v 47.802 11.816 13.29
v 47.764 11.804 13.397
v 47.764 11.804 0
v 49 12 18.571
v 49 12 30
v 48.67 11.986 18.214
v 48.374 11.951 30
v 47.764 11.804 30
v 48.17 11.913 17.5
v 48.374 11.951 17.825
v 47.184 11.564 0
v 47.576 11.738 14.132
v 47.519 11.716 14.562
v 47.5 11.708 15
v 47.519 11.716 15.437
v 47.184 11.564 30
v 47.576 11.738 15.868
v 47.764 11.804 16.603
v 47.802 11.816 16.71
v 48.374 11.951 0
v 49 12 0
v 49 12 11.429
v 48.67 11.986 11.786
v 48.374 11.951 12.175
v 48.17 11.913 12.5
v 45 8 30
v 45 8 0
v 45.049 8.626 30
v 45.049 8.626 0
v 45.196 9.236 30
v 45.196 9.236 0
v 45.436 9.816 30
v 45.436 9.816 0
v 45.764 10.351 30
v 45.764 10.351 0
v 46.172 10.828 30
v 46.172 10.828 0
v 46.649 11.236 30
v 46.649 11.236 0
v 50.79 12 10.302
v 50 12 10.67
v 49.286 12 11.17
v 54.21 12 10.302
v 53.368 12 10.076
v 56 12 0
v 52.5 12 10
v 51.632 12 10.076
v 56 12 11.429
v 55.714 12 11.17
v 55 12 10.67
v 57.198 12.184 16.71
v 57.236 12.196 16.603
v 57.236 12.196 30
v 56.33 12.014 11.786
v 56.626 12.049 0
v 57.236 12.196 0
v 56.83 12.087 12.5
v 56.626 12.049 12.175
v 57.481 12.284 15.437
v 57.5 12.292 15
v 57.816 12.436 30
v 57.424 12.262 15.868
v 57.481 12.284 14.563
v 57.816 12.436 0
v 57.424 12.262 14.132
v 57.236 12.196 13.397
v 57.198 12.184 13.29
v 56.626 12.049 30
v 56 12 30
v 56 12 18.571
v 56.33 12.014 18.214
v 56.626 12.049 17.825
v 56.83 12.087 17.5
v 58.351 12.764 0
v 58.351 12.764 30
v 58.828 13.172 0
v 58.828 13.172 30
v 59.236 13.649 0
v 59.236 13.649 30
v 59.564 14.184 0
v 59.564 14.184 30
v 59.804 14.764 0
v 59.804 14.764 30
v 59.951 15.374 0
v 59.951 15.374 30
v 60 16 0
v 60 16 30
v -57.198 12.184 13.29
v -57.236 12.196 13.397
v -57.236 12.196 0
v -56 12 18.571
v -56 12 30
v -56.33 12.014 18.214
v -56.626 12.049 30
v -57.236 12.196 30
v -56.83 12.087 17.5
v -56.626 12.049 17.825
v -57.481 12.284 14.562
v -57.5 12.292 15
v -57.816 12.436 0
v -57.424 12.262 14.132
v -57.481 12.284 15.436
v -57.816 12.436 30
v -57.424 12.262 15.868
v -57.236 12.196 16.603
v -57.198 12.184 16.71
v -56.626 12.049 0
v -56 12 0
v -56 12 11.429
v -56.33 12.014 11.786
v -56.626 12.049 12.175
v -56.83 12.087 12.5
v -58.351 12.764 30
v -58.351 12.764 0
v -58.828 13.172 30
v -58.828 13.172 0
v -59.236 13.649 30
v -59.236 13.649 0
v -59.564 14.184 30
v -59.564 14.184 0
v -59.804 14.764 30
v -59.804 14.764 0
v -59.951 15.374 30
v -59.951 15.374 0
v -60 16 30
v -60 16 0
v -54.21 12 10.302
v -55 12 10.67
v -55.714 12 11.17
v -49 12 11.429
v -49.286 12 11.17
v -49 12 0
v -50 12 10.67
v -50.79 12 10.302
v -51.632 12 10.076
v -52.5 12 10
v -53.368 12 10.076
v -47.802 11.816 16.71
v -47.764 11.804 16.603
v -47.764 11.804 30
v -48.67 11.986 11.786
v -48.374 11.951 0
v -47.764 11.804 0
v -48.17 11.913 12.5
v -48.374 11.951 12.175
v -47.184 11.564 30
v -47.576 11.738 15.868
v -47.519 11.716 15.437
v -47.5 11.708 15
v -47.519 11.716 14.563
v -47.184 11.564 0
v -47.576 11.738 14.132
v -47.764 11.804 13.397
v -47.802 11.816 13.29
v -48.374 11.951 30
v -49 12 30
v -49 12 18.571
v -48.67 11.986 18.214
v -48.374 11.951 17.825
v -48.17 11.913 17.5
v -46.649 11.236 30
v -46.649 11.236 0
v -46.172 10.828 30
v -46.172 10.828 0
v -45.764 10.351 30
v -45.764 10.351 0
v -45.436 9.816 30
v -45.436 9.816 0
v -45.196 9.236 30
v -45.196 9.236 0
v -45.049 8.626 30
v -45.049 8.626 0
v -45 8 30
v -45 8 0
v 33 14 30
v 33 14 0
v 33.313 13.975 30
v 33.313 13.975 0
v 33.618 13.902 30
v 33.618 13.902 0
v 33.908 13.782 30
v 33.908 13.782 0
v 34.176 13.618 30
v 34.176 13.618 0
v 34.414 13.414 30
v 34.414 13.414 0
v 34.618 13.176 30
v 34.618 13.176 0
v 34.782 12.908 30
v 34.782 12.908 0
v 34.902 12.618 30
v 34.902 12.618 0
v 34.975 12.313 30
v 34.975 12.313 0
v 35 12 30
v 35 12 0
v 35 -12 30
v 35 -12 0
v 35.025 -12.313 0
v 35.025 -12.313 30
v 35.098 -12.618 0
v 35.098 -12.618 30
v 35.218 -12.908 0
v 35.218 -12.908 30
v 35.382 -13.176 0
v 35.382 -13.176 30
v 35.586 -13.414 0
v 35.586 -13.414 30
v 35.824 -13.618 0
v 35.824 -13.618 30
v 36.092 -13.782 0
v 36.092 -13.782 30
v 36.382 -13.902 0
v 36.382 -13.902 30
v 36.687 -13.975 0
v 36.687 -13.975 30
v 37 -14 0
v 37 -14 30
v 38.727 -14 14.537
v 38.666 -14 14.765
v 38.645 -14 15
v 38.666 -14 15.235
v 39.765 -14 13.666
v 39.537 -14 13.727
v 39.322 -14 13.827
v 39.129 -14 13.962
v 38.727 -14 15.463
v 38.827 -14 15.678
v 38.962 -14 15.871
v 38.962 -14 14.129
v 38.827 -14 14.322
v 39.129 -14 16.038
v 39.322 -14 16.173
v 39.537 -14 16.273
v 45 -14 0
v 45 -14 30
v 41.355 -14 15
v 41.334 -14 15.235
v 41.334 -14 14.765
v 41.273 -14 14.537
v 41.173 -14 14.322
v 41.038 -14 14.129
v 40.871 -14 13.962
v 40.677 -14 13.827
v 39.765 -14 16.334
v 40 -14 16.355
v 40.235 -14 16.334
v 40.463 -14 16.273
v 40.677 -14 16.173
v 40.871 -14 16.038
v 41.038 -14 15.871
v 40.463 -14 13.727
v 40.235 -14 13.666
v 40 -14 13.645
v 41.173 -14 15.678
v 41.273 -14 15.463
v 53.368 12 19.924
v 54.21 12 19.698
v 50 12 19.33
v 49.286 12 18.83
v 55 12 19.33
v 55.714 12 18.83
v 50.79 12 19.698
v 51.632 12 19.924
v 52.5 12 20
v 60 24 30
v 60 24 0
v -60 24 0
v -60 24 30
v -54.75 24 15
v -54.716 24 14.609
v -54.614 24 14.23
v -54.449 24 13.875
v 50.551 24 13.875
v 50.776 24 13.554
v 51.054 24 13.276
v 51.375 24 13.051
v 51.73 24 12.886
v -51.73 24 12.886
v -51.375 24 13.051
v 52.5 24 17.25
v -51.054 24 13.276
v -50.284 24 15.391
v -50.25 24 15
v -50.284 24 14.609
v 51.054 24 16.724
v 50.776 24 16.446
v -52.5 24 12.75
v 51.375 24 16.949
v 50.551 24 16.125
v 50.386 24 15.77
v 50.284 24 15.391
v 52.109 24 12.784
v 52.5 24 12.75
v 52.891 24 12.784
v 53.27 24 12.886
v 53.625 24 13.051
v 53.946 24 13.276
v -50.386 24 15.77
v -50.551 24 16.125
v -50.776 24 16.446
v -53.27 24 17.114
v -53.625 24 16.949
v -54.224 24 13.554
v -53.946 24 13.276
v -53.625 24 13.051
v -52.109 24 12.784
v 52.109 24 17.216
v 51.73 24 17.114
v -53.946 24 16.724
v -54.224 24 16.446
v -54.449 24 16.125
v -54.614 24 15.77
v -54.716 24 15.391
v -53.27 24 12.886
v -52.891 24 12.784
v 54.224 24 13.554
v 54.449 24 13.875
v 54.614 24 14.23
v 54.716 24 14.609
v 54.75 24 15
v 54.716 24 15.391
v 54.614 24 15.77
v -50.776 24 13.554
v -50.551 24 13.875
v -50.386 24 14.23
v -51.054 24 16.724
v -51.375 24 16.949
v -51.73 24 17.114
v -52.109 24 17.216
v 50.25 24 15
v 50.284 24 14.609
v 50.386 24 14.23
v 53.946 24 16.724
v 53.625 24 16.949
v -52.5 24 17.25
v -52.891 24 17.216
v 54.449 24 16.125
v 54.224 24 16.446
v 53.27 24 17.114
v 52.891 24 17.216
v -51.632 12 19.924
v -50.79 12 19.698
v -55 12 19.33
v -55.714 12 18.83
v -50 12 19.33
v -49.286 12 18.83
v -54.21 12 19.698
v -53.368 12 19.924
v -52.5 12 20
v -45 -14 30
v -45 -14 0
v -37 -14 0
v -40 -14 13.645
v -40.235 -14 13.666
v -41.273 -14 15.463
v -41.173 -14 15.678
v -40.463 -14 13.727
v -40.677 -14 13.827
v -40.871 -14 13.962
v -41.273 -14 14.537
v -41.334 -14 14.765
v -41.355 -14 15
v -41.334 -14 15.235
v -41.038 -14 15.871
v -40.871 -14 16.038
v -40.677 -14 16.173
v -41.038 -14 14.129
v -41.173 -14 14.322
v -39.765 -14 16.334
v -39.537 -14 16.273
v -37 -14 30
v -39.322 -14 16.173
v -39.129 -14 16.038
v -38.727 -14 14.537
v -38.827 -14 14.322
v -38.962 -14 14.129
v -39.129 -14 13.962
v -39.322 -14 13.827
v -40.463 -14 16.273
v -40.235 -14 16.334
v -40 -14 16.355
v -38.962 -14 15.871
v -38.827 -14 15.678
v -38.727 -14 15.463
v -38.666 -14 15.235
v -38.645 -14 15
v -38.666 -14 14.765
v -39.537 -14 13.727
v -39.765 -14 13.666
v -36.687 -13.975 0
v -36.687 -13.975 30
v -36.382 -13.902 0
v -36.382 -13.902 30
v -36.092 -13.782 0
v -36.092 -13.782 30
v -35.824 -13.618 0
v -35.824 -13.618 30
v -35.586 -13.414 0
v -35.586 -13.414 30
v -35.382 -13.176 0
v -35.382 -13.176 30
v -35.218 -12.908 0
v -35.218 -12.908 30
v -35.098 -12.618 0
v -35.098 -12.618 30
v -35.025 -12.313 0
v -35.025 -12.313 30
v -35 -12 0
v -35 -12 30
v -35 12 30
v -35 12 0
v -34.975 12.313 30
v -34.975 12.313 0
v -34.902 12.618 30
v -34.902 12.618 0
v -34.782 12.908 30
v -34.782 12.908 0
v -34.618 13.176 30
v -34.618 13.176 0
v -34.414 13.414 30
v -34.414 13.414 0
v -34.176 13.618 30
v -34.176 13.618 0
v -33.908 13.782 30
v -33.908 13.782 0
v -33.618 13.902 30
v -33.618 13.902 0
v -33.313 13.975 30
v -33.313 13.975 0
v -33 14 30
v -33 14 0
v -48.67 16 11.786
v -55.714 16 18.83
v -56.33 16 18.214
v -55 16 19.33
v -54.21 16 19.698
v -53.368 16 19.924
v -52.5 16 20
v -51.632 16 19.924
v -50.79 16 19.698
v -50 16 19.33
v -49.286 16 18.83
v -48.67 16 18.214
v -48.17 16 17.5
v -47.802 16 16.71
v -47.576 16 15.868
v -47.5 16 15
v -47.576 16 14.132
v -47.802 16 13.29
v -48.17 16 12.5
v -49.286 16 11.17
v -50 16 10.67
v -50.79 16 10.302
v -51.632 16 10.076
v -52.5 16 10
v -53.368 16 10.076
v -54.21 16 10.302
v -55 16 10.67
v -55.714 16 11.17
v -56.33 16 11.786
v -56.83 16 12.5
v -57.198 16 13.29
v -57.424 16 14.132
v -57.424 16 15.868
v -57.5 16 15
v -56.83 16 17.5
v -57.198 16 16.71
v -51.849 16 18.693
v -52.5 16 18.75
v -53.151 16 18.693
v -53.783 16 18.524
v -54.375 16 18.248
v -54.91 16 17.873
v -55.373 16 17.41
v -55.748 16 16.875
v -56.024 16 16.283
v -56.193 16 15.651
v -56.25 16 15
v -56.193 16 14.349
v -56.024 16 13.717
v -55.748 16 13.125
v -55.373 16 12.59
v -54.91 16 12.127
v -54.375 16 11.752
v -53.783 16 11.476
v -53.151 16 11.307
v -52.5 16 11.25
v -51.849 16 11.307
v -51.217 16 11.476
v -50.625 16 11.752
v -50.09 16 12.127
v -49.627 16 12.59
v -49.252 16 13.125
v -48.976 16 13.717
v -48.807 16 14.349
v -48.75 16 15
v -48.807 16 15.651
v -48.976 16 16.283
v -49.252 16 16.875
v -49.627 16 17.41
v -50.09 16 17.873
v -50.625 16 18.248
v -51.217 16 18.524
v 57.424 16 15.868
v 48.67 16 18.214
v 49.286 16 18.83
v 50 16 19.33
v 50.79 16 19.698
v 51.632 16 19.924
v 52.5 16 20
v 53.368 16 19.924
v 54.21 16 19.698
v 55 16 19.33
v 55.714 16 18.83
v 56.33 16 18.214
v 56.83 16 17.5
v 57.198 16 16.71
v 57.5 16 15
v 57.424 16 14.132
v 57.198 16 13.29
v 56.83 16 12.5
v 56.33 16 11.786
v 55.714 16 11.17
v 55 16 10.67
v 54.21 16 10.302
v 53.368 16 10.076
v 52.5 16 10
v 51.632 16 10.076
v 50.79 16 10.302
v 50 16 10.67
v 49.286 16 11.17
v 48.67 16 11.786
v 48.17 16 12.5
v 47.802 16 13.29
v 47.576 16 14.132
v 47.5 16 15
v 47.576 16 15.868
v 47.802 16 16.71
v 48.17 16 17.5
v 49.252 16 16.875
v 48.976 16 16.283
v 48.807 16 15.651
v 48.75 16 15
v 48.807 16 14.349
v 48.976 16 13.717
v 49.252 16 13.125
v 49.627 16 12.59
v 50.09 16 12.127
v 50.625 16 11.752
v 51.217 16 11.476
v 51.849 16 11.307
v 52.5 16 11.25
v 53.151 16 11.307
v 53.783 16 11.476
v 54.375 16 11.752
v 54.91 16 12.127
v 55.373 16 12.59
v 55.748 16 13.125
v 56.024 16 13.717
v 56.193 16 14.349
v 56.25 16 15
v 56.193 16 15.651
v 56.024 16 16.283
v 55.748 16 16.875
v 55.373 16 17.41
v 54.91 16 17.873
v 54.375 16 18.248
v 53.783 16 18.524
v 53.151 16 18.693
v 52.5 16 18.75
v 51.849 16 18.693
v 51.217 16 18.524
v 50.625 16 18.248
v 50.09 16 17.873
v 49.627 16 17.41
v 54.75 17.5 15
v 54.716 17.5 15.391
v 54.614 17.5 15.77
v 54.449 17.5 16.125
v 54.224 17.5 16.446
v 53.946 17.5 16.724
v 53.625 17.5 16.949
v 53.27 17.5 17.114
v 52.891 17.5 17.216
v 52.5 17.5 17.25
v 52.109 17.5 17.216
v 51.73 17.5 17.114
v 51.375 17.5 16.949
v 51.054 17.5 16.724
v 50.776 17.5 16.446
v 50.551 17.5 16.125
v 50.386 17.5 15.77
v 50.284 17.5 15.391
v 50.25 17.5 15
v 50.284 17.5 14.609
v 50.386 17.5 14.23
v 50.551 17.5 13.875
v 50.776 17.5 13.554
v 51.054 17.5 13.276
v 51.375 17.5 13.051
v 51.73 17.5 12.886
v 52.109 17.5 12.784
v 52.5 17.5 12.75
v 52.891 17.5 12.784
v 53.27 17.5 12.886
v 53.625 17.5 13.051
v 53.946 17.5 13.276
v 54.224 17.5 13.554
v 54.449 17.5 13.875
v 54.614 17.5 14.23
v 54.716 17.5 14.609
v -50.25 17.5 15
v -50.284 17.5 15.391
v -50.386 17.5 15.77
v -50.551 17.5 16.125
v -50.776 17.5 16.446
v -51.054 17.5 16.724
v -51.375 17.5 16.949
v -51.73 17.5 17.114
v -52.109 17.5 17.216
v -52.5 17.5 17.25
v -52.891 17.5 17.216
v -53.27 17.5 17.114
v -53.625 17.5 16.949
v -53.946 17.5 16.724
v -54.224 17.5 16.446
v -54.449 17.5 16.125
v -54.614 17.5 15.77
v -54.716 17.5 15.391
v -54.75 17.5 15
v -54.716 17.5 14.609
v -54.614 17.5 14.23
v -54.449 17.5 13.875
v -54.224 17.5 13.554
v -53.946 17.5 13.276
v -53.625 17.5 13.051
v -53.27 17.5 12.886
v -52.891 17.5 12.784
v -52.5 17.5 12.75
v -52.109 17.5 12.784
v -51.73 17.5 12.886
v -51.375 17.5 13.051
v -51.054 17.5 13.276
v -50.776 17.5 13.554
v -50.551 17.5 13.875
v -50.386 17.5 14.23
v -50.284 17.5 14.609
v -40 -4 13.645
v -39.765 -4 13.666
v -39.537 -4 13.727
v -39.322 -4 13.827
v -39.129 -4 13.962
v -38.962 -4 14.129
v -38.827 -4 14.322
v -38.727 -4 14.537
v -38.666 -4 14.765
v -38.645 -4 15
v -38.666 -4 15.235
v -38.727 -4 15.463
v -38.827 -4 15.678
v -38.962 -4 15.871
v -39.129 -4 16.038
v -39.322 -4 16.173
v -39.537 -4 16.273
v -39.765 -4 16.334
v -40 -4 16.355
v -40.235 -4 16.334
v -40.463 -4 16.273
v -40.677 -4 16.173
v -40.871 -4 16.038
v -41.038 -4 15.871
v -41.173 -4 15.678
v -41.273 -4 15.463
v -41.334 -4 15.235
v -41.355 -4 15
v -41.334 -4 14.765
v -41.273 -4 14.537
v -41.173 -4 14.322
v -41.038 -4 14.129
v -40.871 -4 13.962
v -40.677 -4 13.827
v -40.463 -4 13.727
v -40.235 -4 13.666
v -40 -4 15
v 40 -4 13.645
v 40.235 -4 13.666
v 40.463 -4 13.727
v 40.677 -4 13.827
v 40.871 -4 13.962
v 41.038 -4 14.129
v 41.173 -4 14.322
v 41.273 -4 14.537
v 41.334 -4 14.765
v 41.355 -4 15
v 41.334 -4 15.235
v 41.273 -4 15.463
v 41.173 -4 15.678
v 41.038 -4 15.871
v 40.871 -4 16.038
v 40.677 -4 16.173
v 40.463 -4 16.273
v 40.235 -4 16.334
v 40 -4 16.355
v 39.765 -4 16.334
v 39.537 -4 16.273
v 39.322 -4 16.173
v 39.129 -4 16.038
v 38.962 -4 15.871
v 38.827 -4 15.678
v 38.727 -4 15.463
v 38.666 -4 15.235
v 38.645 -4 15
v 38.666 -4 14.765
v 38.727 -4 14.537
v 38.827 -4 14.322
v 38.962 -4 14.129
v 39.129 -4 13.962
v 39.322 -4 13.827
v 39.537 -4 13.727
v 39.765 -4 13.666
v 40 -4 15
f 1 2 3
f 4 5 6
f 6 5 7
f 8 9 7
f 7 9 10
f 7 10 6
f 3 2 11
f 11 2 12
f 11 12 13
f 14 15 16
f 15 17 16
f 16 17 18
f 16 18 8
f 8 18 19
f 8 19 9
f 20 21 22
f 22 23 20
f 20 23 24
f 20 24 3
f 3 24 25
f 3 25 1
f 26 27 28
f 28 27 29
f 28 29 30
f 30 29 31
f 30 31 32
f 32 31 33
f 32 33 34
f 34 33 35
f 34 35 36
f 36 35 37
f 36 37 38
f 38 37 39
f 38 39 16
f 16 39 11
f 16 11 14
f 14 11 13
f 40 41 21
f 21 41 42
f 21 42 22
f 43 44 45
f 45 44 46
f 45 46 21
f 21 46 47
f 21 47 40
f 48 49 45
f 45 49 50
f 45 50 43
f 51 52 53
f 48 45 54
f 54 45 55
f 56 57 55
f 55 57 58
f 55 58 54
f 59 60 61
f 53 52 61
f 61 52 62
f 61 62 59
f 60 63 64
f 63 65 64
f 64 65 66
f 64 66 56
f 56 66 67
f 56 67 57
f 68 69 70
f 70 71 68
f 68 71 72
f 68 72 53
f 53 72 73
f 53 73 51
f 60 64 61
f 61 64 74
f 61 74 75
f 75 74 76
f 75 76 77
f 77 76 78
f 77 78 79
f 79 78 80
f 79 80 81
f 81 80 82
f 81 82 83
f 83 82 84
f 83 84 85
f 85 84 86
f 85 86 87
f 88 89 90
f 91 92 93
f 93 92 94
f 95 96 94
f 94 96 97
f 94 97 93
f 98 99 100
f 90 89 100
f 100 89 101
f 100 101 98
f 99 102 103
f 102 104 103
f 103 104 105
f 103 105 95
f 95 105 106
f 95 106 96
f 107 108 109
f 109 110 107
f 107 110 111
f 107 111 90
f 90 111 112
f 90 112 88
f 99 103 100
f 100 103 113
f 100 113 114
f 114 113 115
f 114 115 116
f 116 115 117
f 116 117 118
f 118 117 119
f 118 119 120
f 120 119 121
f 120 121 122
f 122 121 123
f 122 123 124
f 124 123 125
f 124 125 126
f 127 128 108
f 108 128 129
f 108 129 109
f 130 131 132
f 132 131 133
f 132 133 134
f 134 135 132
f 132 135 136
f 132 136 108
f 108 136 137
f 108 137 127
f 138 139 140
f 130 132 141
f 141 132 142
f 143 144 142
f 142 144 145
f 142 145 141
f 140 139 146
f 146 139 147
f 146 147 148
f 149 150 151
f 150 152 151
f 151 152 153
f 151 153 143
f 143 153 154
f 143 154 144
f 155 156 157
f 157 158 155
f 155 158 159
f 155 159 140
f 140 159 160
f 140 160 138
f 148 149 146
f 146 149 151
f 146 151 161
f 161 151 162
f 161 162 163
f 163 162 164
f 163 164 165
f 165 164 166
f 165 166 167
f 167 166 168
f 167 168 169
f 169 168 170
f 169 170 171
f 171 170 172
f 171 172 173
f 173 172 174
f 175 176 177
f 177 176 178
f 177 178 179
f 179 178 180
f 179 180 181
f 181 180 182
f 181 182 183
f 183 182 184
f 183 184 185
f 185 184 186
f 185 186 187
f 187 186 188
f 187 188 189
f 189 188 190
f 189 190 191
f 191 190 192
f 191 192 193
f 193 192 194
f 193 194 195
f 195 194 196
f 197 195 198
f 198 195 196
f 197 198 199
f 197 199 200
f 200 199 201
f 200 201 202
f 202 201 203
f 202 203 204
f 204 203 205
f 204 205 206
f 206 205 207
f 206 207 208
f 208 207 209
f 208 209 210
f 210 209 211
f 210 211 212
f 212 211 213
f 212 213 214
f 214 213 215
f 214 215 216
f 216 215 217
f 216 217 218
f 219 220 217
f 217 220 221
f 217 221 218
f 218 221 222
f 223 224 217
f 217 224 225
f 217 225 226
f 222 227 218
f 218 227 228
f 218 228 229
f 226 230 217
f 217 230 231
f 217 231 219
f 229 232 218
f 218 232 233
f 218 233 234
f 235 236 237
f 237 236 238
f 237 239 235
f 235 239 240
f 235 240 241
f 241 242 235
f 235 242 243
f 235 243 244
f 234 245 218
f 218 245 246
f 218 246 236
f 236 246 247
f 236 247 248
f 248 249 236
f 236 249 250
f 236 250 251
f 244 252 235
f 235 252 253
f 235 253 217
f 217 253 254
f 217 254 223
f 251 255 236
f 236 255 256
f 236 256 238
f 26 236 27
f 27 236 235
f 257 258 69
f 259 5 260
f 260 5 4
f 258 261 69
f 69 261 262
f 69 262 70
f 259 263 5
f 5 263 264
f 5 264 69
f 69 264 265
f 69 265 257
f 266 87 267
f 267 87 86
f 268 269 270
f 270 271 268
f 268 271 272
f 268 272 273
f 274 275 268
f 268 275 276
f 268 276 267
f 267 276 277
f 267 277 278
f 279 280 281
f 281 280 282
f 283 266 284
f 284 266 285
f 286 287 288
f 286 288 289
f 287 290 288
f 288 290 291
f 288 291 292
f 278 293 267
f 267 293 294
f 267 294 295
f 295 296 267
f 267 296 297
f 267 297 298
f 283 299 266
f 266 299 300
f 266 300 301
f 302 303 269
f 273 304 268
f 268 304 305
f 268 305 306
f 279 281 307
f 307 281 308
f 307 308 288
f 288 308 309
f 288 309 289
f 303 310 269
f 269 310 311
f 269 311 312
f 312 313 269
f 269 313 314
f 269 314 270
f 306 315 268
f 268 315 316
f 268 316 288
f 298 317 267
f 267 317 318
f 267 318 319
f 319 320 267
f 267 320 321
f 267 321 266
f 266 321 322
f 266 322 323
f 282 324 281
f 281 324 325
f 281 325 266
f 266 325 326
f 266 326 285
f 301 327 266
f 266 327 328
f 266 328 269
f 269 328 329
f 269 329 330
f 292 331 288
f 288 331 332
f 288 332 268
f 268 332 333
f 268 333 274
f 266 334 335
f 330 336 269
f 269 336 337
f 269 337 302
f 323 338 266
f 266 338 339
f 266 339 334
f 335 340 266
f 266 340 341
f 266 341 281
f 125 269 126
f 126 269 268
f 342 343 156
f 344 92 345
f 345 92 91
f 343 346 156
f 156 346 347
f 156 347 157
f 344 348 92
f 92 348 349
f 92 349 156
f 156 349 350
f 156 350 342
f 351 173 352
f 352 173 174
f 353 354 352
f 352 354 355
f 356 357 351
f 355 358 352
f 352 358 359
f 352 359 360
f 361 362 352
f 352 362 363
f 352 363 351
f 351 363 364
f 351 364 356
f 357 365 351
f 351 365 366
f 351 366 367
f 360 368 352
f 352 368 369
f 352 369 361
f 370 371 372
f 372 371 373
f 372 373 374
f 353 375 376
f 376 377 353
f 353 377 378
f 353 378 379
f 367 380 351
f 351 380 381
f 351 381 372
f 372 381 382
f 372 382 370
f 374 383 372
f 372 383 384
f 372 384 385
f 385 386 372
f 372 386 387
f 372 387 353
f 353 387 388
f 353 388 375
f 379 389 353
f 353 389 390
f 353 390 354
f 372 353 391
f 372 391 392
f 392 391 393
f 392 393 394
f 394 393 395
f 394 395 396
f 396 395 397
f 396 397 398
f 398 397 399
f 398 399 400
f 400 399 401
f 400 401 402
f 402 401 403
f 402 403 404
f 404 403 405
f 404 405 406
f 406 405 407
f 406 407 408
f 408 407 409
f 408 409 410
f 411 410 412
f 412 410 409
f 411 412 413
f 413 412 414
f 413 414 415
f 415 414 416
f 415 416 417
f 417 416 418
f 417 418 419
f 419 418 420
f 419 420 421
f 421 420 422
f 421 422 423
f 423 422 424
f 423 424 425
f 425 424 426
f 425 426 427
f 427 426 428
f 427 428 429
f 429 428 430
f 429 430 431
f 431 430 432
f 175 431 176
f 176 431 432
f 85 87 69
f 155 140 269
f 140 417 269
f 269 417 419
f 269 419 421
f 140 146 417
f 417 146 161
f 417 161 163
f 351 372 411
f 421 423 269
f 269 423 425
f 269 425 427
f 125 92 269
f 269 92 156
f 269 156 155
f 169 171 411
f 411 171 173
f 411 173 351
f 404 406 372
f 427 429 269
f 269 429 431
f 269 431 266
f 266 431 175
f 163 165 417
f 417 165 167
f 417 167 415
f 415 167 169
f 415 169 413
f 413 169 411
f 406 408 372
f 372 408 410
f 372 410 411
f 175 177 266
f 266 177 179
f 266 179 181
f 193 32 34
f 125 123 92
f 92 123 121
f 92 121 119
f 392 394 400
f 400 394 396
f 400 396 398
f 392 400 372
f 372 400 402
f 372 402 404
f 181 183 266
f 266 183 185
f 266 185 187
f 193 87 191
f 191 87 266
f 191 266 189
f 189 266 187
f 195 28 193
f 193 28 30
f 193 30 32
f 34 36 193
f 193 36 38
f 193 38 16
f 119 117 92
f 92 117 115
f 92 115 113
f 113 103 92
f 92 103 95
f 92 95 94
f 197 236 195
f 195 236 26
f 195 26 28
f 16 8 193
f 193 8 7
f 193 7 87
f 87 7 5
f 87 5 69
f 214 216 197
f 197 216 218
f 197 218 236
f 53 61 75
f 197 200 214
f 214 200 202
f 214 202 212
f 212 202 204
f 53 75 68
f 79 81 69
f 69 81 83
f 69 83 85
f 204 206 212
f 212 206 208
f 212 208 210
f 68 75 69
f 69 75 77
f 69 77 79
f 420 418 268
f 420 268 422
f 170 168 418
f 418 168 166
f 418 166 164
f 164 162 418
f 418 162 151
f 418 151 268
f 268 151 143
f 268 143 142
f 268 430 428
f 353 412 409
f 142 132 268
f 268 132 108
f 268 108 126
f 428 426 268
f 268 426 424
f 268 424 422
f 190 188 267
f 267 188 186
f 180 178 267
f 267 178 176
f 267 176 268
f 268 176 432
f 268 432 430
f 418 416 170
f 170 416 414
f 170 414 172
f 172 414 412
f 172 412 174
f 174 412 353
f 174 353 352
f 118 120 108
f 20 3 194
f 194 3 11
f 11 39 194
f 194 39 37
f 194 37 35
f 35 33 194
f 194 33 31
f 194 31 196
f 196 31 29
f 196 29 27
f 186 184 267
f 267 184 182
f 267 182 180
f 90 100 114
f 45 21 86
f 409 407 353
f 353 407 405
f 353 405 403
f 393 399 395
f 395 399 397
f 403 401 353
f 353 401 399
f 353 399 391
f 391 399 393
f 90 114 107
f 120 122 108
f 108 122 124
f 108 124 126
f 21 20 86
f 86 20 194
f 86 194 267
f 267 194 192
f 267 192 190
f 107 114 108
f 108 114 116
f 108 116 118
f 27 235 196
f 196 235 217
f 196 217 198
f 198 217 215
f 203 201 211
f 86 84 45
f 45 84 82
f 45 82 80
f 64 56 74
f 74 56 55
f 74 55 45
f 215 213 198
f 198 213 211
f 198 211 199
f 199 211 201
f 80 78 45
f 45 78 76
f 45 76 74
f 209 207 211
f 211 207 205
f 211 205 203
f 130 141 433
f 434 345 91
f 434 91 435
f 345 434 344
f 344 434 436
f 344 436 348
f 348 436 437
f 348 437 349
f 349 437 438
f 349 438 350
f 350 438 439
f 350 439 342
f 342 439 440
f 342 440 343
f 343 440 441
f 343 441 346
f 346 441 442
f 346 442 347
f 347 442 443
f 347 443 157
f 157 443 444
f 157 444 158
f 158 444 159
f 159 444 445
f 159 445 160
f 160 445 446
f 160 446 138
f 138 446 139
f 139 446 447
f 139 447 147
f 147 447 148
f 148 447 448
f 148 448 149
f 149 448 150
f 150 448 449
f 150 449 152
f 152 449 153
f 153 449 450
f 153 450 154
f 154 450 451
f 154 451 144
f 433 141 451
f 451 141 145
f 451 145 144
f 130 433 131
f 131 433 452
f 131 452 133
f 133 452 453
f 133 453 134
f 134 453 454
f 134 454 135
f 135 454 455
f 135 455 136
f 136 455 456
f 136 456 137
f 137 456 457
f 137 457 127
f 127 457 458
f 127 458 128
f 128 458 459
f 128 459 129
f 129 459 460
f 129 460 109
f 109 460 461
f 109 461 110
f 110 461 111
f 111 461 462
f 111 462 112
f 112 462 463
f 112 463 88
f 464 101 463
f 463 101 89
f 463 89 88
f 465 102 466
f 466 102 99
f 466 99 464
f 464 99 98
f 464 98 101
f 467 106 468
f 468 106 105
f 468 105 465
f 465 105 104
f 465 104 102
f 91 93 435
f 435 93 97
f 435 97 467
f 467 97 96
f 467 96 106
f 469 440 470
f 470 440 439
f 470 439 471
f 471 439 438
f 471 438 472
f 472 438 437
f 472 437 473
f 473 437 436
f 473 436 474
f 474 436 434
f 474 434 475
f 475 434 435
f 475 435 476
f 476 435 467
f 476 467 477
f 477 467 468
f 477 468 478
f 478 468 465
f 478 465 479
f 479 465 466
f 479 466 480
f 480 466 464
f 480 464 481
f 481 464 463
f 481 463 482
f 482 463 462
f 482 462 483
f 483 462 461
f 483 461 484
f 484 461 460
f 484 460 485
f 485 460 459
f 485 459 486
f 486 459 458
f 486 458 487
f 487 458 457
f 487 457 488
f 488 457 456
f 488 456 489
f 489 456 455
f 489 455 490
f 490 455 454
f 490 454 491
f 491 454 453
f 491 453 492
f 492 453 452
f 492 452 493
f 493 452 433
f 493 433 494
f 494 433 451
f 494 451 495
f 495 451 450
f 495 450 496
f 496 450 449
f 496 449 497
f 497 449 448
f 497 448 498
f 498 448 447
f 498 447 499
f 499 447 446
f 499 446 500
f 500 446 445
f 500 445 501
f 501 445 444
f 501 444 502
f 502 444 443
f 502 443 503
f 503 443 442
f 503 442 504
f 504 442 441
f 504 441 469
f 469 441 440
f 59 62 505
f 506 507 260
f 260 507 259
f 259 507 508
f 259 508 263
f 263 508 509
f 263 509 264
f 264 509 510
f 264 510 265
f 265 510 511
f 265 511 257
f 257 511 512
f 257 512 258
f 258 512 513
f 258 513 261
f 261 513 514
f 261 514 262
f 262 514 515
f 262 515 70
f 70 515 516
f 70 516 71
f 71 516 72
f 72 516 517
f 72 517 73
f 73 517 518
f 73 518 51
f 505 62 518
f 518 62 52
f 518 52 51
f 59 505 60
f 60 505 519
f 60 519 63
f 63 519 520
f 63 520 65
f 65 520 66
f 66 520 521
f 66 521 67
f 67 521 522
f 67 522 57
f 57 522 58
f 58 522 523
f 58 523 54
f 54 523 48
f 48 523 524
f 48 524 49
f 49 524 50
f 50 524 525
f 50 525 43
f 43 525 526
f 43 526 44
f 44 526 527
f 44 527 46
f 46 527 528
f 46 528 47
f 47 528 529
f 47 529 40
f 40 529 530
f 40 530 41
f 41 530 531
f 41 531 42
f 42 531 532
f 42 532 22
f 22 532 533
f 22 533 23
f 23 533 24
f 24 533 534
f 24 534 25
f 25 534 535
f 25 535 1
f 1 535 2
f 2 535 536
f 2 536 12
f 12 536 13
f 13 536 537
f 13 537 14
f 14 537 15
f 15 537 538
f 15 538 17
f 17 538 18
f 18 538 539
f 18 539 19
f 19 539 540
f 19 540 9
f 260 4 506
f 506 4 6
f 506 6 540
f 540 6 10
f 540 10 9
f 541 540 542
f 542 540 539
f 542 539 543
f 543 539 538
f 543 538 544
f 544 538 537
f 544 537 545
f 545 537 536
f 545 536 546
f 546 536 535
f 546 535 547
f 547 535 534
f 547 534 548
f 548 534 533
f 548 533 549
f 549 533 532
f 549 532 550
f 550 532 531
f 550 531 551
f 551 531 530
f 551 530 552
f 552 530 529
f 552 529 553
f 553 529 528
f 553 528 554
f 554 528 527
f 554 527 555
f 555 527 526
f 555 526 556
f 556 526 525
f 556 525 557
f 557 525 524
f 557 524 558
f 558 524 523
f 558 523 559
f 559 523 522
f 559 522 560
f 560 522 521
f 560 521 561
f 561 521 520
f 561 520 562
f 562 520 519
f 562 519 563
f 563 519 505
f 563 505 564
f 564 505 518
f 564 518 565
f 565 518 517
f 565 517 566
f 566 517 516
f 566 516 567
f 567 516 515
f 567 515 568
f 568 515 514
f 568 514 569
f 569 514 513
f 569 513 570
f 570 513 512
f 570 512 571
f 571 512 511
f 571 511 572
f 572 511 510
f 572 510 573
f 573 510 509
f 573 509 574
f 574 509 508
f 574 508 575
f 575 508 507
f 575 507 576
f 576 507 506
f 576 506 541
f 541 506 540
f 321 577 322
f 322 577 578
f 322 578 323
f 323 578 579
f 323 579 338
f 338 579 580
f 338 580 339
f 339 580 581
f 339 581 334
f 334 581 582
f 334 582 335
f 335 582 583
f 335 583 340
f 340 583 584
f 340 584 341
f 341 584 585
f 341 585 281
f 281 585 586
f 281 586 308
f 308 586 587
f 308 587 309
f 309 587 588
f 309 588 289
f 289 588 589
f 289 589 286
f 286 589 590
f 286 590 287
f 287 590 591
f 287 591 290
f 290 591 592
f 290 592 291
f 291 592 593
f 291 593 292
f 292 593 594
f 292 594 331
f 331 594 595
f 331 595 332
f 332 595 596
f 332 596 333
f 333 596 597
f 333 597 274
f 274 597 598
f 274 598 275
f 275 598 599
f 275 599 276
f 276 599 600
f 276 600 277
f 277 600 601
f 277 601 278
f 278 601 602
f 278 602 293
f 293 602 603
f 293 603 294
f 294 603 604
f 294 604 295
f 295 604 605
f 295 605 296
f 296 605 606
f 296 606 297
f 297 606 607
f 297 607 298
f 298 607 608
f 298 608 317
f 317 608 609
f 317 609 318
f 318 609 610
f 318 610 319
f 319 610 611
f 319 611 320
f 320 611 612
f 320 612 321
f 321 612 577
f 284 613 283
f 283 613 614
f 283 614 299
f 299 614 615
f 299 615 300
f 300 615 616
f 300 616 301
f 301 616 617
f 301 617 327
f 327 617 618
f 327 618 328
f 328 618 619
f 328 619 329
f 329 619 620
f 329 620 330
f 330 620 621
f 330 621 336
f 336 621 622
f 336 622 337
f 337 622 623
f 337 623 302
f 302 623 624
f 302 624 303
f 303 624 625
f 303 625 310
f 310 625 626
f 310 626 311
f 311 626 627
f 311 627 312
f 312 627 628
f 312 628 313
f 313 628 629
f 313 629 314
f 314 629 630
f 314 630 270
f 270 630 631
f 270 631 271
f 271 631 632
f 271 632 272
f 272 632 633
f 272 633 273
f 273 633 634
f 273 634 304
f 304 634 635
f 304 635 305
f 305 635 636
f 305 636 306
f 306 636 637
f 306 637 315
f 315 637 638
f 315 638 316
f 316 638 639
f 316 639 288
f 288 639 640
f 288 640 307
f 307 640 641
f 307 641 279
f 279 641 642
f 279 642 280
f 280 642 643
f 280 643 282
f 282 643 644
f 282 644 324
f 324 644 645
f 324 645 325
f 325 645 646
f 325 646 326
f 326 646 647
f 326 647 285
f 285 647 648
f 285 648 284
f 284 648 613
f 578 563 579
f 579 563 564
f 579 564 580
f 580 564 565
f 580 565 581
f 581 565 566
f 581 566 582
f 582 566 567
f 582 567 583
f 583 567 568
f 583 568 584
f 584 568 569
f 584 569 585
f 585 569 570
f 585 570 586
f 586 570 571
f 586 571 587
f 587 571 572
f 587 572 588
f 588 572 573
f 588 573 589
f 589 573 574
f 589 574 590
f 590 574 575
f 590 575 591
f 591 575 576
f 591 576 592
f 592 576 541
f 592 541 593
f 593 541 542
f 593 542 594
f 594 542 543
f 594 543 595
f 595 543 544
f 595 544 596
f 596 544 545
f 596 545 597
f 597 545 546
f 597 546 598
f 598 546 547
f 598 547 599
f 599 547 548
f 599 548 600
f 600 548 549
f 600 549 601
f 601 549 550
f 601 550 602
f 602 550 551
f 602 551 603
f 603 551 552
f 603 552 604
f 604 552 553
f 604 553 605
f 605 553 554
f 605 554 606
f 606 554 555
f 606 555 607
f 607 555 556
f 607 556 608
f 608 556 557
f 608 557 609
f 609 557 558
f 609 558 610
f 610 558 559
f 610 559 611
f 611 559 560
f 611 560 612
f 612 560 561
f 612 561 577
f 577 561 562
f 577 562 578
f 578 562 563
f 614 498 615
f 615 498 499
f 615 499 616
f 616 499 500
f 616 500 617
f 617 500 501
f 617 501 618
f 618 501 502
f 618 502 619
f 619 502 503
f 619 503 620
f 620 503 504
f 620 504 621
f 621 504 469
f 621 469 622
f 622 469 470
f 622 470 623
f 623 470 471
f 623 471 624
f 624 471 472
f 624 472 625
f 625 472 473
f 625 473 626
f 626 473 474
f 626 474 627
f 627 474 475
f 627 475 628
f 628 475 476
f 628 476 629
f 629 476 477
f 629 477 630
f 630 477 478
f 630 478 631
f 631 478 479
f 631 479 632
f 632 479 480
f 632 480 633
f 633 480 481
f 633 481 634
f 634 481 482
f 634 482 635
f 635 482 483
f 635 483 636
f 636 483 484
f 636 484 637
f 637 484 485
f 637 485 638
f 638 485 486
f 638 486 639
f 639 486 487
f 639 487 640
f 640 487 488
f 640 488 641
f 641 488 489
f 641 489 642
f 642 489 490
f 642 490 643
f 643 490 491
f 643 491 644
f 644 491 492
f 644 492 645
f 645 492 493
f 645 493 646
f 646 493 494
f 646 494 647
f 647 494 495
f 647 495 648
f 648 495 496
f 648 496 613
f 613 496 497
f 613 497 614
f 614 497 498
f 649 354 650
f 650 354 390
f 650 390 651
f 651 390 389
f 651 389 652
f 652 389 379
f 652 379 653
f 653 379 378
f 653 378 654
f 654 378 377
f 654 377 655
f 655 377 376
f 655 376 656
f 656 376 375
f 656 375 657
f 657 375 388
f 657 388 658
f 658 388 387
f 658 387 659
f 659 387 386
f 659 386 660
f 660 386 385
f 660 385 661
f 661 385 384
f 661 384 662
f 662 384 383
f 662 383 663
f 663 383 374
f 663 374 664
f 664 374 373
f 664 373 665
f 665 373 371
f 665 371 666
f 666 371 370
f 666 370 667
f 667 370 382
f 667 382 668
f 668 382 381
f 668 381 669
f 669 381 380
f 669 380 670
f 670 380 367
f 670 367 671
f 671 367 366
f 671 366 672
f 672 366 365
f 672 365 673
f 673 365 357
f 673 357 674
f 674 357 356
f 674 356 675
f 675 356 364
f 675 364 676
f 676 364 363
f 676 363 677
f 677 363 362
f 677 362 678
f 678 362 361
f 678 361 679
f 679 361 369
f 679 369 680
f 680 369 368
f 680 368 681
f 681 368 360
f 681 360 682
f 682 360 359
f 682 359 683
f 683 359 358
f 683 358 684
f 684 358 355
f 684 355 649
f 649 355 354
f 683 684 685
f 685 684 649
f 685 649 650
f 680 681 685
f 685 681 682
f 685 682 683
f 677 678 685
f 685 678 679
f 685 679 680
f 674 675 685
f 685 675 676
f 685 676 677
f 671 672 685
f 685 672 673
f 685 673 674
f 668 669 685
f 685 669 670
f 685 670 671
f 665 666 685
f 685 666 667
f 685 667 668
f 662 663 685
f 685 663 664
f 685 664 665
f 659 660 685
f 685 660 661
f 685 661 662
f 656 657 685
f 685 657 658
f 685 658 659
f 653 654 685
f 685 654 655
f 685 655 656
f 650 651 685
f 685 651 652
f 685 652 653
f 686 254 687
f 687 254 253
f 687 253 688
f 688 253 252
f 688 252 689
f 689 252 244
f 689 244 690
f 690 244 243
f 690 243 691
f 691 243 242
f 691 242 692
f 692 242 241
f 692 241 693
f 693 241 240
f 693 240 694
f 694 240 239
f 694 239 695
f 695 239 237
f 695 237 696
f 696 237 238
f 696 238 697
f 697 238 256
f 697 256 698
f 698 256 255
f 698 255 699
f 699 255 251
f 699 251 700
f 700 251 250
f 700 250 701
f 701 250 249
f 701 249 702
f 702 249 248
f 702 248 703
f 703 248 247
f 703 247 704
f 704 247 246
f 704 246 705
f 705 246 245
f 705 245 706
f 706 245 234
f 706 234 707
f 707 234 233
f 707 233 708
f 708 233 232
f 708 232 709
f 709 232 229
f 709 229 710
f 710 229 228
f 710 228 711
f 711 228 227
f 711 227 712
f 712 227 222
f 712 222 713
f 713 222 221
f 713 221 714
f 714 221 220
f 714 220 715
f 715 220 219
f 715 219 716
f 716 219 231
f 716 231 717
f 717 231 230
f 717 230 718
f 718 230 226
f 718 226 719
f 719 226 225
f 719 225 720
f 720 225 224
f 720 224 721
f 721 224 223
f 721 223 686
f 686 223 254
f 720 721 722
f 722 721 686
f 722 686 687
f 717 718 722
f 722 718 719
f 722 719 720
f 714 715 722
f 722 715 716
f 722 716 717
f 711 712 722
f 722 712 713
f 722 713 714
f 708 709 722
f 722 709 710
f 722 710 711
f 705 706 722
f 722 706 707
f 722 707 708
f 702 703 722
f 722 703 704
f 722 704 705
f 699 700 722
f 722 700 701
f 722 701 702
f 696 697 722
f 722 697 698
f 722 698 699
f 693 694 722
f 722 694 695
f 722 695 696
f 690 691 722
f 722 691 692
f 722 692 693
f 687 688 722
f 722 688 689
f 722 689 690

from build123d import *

# Parameters (mm, degrees)
BOSS_EXTRUDE1_DEPTH     = 30
CUT_EXTRUDE1_DEPTH      = 72.944422994
CUT_EXTRUDE1_DEPTH_BACK = 4
SKETCH2_R               = 5
SKETCH3_R               = 2.25
CUT_EXTRUDE2_DEPTH      = 74.484692406
CHAMFER1_SIZE           = 1.5
SKETCH4_R               = 1.355
CUT_EXTRUDE3_DEPTH      = 10


with BuildPart() as part:
    # Sketch1 → Boss-Extrude1 (new body)
    with BuildSketch(Plane.XY):
        with BuildLine():
            Line((-35, -12), (-35, 12))
            ThreePointArc((-35, 12), (-34.414213562, 13.414213562), (-33, 14))
            Line((-33, 14), (33, 14))
            ThreePointArc((33, 14), (34.414213562, 13.414213562), (35, 12))
            Line((35, 12), (35, -12))
            ThreePointArc((35, -12), (35.585786438, -13.414213562), (37, -14))
            Line((37, -14), (45, -14))
            Line((45, -14), (45, 8))
            ThreePointArc((45, 8), (46.171572875, 10.828427125), (49, 12))
            Line((49, 12), (56, 12))
            ThreePointArc((56, 12), (58.828427125, 13.171572875), (60, 16))
            Line((60, 16), (60, 24))
            Line((60, 24), (33, 24))
            Line((33, 24), (-33, 24))
            Line((-33, 24), (-60, 24))
            Line((-60, 24), (-60, 16))
            ThreePointArc((-60, 16), (-58.828427125, 13.171572875), (-56, 12))
            Line((-56, 12), (-49, 12))
            ThreePointArc((-49, 12), (-46.171572875, 10.828427125), (-45, 8))
            Line((-45, 8), (-45, -14))
            Line((-45, -14), (-37, -14))
            ThreePointArc((-37, -14), (-35.585786438, -13.414213562), (-35, -12))
        make_face()
    extrude(amount=BOSS_EXTRUDE1_DEPTH)

    # Sketch2 → Cut-Extrude1 (cut, two sides: drawn at the far end of the back side and taken through both)
    with BuildSketch(Plane.XZ.offset(-12).offset(-CUT_EXTRUDE1_DEPTH_BACK)):
        with Locations(Location((-52.5, 15, 0), (0, 0, 134.427004004))):
            Circle(SKETCH2_R)
        with Locations(Location((52.5, 15, 0), (0, 0, 225.572995999))):
            Circle(SKETCH2_R)
    extrude(amount=CUT_EXTRUDE1_DEPTH + CUT_EXTRUDE1_DEPTH_BACK, mode=Mode.SUBTRACT)

    # Sketch3 → Cut-Extrude2 (cut, through all)
    with BuildSketch(Plane.XZ.offset(-16)):
        with Locations((-52.5, 15)):
            Circle(SKETCH3_R)
        with Locations((52.5, 15)):
            Circle(SKETCH3_R)
    extrude(amount=-CUT_EXTRUDE2_DEPTH, mode=Mode.SUBTRACT)

    # Chamfer1
    chamfer1_edges = [part.edges().sort_by_distance(p)[0] for p in [
        (-54.75, 16, 15),
        (50.25, 16, 15),
    ]]
    chamfer(chamfer1_edges, length=CHAMFER1_SIZE)

    # Sketch4 → Cut-Extrude3 (cut)
    with BuildSketch(Plane.XZ.offset(14)):
        with Locations(Location((-40, 15, 0), (0, 0, 270))):
            Circle(SKETCH4_R)
        with Locations(Location((40, 15, 0), (0, 0, 270))):
            Circle(SKETCH4_R)
    extrude(amount=-CUT_EXTRUDE3_DEPTH, mode=Mode.SUBTRACT)


solid = part.part
